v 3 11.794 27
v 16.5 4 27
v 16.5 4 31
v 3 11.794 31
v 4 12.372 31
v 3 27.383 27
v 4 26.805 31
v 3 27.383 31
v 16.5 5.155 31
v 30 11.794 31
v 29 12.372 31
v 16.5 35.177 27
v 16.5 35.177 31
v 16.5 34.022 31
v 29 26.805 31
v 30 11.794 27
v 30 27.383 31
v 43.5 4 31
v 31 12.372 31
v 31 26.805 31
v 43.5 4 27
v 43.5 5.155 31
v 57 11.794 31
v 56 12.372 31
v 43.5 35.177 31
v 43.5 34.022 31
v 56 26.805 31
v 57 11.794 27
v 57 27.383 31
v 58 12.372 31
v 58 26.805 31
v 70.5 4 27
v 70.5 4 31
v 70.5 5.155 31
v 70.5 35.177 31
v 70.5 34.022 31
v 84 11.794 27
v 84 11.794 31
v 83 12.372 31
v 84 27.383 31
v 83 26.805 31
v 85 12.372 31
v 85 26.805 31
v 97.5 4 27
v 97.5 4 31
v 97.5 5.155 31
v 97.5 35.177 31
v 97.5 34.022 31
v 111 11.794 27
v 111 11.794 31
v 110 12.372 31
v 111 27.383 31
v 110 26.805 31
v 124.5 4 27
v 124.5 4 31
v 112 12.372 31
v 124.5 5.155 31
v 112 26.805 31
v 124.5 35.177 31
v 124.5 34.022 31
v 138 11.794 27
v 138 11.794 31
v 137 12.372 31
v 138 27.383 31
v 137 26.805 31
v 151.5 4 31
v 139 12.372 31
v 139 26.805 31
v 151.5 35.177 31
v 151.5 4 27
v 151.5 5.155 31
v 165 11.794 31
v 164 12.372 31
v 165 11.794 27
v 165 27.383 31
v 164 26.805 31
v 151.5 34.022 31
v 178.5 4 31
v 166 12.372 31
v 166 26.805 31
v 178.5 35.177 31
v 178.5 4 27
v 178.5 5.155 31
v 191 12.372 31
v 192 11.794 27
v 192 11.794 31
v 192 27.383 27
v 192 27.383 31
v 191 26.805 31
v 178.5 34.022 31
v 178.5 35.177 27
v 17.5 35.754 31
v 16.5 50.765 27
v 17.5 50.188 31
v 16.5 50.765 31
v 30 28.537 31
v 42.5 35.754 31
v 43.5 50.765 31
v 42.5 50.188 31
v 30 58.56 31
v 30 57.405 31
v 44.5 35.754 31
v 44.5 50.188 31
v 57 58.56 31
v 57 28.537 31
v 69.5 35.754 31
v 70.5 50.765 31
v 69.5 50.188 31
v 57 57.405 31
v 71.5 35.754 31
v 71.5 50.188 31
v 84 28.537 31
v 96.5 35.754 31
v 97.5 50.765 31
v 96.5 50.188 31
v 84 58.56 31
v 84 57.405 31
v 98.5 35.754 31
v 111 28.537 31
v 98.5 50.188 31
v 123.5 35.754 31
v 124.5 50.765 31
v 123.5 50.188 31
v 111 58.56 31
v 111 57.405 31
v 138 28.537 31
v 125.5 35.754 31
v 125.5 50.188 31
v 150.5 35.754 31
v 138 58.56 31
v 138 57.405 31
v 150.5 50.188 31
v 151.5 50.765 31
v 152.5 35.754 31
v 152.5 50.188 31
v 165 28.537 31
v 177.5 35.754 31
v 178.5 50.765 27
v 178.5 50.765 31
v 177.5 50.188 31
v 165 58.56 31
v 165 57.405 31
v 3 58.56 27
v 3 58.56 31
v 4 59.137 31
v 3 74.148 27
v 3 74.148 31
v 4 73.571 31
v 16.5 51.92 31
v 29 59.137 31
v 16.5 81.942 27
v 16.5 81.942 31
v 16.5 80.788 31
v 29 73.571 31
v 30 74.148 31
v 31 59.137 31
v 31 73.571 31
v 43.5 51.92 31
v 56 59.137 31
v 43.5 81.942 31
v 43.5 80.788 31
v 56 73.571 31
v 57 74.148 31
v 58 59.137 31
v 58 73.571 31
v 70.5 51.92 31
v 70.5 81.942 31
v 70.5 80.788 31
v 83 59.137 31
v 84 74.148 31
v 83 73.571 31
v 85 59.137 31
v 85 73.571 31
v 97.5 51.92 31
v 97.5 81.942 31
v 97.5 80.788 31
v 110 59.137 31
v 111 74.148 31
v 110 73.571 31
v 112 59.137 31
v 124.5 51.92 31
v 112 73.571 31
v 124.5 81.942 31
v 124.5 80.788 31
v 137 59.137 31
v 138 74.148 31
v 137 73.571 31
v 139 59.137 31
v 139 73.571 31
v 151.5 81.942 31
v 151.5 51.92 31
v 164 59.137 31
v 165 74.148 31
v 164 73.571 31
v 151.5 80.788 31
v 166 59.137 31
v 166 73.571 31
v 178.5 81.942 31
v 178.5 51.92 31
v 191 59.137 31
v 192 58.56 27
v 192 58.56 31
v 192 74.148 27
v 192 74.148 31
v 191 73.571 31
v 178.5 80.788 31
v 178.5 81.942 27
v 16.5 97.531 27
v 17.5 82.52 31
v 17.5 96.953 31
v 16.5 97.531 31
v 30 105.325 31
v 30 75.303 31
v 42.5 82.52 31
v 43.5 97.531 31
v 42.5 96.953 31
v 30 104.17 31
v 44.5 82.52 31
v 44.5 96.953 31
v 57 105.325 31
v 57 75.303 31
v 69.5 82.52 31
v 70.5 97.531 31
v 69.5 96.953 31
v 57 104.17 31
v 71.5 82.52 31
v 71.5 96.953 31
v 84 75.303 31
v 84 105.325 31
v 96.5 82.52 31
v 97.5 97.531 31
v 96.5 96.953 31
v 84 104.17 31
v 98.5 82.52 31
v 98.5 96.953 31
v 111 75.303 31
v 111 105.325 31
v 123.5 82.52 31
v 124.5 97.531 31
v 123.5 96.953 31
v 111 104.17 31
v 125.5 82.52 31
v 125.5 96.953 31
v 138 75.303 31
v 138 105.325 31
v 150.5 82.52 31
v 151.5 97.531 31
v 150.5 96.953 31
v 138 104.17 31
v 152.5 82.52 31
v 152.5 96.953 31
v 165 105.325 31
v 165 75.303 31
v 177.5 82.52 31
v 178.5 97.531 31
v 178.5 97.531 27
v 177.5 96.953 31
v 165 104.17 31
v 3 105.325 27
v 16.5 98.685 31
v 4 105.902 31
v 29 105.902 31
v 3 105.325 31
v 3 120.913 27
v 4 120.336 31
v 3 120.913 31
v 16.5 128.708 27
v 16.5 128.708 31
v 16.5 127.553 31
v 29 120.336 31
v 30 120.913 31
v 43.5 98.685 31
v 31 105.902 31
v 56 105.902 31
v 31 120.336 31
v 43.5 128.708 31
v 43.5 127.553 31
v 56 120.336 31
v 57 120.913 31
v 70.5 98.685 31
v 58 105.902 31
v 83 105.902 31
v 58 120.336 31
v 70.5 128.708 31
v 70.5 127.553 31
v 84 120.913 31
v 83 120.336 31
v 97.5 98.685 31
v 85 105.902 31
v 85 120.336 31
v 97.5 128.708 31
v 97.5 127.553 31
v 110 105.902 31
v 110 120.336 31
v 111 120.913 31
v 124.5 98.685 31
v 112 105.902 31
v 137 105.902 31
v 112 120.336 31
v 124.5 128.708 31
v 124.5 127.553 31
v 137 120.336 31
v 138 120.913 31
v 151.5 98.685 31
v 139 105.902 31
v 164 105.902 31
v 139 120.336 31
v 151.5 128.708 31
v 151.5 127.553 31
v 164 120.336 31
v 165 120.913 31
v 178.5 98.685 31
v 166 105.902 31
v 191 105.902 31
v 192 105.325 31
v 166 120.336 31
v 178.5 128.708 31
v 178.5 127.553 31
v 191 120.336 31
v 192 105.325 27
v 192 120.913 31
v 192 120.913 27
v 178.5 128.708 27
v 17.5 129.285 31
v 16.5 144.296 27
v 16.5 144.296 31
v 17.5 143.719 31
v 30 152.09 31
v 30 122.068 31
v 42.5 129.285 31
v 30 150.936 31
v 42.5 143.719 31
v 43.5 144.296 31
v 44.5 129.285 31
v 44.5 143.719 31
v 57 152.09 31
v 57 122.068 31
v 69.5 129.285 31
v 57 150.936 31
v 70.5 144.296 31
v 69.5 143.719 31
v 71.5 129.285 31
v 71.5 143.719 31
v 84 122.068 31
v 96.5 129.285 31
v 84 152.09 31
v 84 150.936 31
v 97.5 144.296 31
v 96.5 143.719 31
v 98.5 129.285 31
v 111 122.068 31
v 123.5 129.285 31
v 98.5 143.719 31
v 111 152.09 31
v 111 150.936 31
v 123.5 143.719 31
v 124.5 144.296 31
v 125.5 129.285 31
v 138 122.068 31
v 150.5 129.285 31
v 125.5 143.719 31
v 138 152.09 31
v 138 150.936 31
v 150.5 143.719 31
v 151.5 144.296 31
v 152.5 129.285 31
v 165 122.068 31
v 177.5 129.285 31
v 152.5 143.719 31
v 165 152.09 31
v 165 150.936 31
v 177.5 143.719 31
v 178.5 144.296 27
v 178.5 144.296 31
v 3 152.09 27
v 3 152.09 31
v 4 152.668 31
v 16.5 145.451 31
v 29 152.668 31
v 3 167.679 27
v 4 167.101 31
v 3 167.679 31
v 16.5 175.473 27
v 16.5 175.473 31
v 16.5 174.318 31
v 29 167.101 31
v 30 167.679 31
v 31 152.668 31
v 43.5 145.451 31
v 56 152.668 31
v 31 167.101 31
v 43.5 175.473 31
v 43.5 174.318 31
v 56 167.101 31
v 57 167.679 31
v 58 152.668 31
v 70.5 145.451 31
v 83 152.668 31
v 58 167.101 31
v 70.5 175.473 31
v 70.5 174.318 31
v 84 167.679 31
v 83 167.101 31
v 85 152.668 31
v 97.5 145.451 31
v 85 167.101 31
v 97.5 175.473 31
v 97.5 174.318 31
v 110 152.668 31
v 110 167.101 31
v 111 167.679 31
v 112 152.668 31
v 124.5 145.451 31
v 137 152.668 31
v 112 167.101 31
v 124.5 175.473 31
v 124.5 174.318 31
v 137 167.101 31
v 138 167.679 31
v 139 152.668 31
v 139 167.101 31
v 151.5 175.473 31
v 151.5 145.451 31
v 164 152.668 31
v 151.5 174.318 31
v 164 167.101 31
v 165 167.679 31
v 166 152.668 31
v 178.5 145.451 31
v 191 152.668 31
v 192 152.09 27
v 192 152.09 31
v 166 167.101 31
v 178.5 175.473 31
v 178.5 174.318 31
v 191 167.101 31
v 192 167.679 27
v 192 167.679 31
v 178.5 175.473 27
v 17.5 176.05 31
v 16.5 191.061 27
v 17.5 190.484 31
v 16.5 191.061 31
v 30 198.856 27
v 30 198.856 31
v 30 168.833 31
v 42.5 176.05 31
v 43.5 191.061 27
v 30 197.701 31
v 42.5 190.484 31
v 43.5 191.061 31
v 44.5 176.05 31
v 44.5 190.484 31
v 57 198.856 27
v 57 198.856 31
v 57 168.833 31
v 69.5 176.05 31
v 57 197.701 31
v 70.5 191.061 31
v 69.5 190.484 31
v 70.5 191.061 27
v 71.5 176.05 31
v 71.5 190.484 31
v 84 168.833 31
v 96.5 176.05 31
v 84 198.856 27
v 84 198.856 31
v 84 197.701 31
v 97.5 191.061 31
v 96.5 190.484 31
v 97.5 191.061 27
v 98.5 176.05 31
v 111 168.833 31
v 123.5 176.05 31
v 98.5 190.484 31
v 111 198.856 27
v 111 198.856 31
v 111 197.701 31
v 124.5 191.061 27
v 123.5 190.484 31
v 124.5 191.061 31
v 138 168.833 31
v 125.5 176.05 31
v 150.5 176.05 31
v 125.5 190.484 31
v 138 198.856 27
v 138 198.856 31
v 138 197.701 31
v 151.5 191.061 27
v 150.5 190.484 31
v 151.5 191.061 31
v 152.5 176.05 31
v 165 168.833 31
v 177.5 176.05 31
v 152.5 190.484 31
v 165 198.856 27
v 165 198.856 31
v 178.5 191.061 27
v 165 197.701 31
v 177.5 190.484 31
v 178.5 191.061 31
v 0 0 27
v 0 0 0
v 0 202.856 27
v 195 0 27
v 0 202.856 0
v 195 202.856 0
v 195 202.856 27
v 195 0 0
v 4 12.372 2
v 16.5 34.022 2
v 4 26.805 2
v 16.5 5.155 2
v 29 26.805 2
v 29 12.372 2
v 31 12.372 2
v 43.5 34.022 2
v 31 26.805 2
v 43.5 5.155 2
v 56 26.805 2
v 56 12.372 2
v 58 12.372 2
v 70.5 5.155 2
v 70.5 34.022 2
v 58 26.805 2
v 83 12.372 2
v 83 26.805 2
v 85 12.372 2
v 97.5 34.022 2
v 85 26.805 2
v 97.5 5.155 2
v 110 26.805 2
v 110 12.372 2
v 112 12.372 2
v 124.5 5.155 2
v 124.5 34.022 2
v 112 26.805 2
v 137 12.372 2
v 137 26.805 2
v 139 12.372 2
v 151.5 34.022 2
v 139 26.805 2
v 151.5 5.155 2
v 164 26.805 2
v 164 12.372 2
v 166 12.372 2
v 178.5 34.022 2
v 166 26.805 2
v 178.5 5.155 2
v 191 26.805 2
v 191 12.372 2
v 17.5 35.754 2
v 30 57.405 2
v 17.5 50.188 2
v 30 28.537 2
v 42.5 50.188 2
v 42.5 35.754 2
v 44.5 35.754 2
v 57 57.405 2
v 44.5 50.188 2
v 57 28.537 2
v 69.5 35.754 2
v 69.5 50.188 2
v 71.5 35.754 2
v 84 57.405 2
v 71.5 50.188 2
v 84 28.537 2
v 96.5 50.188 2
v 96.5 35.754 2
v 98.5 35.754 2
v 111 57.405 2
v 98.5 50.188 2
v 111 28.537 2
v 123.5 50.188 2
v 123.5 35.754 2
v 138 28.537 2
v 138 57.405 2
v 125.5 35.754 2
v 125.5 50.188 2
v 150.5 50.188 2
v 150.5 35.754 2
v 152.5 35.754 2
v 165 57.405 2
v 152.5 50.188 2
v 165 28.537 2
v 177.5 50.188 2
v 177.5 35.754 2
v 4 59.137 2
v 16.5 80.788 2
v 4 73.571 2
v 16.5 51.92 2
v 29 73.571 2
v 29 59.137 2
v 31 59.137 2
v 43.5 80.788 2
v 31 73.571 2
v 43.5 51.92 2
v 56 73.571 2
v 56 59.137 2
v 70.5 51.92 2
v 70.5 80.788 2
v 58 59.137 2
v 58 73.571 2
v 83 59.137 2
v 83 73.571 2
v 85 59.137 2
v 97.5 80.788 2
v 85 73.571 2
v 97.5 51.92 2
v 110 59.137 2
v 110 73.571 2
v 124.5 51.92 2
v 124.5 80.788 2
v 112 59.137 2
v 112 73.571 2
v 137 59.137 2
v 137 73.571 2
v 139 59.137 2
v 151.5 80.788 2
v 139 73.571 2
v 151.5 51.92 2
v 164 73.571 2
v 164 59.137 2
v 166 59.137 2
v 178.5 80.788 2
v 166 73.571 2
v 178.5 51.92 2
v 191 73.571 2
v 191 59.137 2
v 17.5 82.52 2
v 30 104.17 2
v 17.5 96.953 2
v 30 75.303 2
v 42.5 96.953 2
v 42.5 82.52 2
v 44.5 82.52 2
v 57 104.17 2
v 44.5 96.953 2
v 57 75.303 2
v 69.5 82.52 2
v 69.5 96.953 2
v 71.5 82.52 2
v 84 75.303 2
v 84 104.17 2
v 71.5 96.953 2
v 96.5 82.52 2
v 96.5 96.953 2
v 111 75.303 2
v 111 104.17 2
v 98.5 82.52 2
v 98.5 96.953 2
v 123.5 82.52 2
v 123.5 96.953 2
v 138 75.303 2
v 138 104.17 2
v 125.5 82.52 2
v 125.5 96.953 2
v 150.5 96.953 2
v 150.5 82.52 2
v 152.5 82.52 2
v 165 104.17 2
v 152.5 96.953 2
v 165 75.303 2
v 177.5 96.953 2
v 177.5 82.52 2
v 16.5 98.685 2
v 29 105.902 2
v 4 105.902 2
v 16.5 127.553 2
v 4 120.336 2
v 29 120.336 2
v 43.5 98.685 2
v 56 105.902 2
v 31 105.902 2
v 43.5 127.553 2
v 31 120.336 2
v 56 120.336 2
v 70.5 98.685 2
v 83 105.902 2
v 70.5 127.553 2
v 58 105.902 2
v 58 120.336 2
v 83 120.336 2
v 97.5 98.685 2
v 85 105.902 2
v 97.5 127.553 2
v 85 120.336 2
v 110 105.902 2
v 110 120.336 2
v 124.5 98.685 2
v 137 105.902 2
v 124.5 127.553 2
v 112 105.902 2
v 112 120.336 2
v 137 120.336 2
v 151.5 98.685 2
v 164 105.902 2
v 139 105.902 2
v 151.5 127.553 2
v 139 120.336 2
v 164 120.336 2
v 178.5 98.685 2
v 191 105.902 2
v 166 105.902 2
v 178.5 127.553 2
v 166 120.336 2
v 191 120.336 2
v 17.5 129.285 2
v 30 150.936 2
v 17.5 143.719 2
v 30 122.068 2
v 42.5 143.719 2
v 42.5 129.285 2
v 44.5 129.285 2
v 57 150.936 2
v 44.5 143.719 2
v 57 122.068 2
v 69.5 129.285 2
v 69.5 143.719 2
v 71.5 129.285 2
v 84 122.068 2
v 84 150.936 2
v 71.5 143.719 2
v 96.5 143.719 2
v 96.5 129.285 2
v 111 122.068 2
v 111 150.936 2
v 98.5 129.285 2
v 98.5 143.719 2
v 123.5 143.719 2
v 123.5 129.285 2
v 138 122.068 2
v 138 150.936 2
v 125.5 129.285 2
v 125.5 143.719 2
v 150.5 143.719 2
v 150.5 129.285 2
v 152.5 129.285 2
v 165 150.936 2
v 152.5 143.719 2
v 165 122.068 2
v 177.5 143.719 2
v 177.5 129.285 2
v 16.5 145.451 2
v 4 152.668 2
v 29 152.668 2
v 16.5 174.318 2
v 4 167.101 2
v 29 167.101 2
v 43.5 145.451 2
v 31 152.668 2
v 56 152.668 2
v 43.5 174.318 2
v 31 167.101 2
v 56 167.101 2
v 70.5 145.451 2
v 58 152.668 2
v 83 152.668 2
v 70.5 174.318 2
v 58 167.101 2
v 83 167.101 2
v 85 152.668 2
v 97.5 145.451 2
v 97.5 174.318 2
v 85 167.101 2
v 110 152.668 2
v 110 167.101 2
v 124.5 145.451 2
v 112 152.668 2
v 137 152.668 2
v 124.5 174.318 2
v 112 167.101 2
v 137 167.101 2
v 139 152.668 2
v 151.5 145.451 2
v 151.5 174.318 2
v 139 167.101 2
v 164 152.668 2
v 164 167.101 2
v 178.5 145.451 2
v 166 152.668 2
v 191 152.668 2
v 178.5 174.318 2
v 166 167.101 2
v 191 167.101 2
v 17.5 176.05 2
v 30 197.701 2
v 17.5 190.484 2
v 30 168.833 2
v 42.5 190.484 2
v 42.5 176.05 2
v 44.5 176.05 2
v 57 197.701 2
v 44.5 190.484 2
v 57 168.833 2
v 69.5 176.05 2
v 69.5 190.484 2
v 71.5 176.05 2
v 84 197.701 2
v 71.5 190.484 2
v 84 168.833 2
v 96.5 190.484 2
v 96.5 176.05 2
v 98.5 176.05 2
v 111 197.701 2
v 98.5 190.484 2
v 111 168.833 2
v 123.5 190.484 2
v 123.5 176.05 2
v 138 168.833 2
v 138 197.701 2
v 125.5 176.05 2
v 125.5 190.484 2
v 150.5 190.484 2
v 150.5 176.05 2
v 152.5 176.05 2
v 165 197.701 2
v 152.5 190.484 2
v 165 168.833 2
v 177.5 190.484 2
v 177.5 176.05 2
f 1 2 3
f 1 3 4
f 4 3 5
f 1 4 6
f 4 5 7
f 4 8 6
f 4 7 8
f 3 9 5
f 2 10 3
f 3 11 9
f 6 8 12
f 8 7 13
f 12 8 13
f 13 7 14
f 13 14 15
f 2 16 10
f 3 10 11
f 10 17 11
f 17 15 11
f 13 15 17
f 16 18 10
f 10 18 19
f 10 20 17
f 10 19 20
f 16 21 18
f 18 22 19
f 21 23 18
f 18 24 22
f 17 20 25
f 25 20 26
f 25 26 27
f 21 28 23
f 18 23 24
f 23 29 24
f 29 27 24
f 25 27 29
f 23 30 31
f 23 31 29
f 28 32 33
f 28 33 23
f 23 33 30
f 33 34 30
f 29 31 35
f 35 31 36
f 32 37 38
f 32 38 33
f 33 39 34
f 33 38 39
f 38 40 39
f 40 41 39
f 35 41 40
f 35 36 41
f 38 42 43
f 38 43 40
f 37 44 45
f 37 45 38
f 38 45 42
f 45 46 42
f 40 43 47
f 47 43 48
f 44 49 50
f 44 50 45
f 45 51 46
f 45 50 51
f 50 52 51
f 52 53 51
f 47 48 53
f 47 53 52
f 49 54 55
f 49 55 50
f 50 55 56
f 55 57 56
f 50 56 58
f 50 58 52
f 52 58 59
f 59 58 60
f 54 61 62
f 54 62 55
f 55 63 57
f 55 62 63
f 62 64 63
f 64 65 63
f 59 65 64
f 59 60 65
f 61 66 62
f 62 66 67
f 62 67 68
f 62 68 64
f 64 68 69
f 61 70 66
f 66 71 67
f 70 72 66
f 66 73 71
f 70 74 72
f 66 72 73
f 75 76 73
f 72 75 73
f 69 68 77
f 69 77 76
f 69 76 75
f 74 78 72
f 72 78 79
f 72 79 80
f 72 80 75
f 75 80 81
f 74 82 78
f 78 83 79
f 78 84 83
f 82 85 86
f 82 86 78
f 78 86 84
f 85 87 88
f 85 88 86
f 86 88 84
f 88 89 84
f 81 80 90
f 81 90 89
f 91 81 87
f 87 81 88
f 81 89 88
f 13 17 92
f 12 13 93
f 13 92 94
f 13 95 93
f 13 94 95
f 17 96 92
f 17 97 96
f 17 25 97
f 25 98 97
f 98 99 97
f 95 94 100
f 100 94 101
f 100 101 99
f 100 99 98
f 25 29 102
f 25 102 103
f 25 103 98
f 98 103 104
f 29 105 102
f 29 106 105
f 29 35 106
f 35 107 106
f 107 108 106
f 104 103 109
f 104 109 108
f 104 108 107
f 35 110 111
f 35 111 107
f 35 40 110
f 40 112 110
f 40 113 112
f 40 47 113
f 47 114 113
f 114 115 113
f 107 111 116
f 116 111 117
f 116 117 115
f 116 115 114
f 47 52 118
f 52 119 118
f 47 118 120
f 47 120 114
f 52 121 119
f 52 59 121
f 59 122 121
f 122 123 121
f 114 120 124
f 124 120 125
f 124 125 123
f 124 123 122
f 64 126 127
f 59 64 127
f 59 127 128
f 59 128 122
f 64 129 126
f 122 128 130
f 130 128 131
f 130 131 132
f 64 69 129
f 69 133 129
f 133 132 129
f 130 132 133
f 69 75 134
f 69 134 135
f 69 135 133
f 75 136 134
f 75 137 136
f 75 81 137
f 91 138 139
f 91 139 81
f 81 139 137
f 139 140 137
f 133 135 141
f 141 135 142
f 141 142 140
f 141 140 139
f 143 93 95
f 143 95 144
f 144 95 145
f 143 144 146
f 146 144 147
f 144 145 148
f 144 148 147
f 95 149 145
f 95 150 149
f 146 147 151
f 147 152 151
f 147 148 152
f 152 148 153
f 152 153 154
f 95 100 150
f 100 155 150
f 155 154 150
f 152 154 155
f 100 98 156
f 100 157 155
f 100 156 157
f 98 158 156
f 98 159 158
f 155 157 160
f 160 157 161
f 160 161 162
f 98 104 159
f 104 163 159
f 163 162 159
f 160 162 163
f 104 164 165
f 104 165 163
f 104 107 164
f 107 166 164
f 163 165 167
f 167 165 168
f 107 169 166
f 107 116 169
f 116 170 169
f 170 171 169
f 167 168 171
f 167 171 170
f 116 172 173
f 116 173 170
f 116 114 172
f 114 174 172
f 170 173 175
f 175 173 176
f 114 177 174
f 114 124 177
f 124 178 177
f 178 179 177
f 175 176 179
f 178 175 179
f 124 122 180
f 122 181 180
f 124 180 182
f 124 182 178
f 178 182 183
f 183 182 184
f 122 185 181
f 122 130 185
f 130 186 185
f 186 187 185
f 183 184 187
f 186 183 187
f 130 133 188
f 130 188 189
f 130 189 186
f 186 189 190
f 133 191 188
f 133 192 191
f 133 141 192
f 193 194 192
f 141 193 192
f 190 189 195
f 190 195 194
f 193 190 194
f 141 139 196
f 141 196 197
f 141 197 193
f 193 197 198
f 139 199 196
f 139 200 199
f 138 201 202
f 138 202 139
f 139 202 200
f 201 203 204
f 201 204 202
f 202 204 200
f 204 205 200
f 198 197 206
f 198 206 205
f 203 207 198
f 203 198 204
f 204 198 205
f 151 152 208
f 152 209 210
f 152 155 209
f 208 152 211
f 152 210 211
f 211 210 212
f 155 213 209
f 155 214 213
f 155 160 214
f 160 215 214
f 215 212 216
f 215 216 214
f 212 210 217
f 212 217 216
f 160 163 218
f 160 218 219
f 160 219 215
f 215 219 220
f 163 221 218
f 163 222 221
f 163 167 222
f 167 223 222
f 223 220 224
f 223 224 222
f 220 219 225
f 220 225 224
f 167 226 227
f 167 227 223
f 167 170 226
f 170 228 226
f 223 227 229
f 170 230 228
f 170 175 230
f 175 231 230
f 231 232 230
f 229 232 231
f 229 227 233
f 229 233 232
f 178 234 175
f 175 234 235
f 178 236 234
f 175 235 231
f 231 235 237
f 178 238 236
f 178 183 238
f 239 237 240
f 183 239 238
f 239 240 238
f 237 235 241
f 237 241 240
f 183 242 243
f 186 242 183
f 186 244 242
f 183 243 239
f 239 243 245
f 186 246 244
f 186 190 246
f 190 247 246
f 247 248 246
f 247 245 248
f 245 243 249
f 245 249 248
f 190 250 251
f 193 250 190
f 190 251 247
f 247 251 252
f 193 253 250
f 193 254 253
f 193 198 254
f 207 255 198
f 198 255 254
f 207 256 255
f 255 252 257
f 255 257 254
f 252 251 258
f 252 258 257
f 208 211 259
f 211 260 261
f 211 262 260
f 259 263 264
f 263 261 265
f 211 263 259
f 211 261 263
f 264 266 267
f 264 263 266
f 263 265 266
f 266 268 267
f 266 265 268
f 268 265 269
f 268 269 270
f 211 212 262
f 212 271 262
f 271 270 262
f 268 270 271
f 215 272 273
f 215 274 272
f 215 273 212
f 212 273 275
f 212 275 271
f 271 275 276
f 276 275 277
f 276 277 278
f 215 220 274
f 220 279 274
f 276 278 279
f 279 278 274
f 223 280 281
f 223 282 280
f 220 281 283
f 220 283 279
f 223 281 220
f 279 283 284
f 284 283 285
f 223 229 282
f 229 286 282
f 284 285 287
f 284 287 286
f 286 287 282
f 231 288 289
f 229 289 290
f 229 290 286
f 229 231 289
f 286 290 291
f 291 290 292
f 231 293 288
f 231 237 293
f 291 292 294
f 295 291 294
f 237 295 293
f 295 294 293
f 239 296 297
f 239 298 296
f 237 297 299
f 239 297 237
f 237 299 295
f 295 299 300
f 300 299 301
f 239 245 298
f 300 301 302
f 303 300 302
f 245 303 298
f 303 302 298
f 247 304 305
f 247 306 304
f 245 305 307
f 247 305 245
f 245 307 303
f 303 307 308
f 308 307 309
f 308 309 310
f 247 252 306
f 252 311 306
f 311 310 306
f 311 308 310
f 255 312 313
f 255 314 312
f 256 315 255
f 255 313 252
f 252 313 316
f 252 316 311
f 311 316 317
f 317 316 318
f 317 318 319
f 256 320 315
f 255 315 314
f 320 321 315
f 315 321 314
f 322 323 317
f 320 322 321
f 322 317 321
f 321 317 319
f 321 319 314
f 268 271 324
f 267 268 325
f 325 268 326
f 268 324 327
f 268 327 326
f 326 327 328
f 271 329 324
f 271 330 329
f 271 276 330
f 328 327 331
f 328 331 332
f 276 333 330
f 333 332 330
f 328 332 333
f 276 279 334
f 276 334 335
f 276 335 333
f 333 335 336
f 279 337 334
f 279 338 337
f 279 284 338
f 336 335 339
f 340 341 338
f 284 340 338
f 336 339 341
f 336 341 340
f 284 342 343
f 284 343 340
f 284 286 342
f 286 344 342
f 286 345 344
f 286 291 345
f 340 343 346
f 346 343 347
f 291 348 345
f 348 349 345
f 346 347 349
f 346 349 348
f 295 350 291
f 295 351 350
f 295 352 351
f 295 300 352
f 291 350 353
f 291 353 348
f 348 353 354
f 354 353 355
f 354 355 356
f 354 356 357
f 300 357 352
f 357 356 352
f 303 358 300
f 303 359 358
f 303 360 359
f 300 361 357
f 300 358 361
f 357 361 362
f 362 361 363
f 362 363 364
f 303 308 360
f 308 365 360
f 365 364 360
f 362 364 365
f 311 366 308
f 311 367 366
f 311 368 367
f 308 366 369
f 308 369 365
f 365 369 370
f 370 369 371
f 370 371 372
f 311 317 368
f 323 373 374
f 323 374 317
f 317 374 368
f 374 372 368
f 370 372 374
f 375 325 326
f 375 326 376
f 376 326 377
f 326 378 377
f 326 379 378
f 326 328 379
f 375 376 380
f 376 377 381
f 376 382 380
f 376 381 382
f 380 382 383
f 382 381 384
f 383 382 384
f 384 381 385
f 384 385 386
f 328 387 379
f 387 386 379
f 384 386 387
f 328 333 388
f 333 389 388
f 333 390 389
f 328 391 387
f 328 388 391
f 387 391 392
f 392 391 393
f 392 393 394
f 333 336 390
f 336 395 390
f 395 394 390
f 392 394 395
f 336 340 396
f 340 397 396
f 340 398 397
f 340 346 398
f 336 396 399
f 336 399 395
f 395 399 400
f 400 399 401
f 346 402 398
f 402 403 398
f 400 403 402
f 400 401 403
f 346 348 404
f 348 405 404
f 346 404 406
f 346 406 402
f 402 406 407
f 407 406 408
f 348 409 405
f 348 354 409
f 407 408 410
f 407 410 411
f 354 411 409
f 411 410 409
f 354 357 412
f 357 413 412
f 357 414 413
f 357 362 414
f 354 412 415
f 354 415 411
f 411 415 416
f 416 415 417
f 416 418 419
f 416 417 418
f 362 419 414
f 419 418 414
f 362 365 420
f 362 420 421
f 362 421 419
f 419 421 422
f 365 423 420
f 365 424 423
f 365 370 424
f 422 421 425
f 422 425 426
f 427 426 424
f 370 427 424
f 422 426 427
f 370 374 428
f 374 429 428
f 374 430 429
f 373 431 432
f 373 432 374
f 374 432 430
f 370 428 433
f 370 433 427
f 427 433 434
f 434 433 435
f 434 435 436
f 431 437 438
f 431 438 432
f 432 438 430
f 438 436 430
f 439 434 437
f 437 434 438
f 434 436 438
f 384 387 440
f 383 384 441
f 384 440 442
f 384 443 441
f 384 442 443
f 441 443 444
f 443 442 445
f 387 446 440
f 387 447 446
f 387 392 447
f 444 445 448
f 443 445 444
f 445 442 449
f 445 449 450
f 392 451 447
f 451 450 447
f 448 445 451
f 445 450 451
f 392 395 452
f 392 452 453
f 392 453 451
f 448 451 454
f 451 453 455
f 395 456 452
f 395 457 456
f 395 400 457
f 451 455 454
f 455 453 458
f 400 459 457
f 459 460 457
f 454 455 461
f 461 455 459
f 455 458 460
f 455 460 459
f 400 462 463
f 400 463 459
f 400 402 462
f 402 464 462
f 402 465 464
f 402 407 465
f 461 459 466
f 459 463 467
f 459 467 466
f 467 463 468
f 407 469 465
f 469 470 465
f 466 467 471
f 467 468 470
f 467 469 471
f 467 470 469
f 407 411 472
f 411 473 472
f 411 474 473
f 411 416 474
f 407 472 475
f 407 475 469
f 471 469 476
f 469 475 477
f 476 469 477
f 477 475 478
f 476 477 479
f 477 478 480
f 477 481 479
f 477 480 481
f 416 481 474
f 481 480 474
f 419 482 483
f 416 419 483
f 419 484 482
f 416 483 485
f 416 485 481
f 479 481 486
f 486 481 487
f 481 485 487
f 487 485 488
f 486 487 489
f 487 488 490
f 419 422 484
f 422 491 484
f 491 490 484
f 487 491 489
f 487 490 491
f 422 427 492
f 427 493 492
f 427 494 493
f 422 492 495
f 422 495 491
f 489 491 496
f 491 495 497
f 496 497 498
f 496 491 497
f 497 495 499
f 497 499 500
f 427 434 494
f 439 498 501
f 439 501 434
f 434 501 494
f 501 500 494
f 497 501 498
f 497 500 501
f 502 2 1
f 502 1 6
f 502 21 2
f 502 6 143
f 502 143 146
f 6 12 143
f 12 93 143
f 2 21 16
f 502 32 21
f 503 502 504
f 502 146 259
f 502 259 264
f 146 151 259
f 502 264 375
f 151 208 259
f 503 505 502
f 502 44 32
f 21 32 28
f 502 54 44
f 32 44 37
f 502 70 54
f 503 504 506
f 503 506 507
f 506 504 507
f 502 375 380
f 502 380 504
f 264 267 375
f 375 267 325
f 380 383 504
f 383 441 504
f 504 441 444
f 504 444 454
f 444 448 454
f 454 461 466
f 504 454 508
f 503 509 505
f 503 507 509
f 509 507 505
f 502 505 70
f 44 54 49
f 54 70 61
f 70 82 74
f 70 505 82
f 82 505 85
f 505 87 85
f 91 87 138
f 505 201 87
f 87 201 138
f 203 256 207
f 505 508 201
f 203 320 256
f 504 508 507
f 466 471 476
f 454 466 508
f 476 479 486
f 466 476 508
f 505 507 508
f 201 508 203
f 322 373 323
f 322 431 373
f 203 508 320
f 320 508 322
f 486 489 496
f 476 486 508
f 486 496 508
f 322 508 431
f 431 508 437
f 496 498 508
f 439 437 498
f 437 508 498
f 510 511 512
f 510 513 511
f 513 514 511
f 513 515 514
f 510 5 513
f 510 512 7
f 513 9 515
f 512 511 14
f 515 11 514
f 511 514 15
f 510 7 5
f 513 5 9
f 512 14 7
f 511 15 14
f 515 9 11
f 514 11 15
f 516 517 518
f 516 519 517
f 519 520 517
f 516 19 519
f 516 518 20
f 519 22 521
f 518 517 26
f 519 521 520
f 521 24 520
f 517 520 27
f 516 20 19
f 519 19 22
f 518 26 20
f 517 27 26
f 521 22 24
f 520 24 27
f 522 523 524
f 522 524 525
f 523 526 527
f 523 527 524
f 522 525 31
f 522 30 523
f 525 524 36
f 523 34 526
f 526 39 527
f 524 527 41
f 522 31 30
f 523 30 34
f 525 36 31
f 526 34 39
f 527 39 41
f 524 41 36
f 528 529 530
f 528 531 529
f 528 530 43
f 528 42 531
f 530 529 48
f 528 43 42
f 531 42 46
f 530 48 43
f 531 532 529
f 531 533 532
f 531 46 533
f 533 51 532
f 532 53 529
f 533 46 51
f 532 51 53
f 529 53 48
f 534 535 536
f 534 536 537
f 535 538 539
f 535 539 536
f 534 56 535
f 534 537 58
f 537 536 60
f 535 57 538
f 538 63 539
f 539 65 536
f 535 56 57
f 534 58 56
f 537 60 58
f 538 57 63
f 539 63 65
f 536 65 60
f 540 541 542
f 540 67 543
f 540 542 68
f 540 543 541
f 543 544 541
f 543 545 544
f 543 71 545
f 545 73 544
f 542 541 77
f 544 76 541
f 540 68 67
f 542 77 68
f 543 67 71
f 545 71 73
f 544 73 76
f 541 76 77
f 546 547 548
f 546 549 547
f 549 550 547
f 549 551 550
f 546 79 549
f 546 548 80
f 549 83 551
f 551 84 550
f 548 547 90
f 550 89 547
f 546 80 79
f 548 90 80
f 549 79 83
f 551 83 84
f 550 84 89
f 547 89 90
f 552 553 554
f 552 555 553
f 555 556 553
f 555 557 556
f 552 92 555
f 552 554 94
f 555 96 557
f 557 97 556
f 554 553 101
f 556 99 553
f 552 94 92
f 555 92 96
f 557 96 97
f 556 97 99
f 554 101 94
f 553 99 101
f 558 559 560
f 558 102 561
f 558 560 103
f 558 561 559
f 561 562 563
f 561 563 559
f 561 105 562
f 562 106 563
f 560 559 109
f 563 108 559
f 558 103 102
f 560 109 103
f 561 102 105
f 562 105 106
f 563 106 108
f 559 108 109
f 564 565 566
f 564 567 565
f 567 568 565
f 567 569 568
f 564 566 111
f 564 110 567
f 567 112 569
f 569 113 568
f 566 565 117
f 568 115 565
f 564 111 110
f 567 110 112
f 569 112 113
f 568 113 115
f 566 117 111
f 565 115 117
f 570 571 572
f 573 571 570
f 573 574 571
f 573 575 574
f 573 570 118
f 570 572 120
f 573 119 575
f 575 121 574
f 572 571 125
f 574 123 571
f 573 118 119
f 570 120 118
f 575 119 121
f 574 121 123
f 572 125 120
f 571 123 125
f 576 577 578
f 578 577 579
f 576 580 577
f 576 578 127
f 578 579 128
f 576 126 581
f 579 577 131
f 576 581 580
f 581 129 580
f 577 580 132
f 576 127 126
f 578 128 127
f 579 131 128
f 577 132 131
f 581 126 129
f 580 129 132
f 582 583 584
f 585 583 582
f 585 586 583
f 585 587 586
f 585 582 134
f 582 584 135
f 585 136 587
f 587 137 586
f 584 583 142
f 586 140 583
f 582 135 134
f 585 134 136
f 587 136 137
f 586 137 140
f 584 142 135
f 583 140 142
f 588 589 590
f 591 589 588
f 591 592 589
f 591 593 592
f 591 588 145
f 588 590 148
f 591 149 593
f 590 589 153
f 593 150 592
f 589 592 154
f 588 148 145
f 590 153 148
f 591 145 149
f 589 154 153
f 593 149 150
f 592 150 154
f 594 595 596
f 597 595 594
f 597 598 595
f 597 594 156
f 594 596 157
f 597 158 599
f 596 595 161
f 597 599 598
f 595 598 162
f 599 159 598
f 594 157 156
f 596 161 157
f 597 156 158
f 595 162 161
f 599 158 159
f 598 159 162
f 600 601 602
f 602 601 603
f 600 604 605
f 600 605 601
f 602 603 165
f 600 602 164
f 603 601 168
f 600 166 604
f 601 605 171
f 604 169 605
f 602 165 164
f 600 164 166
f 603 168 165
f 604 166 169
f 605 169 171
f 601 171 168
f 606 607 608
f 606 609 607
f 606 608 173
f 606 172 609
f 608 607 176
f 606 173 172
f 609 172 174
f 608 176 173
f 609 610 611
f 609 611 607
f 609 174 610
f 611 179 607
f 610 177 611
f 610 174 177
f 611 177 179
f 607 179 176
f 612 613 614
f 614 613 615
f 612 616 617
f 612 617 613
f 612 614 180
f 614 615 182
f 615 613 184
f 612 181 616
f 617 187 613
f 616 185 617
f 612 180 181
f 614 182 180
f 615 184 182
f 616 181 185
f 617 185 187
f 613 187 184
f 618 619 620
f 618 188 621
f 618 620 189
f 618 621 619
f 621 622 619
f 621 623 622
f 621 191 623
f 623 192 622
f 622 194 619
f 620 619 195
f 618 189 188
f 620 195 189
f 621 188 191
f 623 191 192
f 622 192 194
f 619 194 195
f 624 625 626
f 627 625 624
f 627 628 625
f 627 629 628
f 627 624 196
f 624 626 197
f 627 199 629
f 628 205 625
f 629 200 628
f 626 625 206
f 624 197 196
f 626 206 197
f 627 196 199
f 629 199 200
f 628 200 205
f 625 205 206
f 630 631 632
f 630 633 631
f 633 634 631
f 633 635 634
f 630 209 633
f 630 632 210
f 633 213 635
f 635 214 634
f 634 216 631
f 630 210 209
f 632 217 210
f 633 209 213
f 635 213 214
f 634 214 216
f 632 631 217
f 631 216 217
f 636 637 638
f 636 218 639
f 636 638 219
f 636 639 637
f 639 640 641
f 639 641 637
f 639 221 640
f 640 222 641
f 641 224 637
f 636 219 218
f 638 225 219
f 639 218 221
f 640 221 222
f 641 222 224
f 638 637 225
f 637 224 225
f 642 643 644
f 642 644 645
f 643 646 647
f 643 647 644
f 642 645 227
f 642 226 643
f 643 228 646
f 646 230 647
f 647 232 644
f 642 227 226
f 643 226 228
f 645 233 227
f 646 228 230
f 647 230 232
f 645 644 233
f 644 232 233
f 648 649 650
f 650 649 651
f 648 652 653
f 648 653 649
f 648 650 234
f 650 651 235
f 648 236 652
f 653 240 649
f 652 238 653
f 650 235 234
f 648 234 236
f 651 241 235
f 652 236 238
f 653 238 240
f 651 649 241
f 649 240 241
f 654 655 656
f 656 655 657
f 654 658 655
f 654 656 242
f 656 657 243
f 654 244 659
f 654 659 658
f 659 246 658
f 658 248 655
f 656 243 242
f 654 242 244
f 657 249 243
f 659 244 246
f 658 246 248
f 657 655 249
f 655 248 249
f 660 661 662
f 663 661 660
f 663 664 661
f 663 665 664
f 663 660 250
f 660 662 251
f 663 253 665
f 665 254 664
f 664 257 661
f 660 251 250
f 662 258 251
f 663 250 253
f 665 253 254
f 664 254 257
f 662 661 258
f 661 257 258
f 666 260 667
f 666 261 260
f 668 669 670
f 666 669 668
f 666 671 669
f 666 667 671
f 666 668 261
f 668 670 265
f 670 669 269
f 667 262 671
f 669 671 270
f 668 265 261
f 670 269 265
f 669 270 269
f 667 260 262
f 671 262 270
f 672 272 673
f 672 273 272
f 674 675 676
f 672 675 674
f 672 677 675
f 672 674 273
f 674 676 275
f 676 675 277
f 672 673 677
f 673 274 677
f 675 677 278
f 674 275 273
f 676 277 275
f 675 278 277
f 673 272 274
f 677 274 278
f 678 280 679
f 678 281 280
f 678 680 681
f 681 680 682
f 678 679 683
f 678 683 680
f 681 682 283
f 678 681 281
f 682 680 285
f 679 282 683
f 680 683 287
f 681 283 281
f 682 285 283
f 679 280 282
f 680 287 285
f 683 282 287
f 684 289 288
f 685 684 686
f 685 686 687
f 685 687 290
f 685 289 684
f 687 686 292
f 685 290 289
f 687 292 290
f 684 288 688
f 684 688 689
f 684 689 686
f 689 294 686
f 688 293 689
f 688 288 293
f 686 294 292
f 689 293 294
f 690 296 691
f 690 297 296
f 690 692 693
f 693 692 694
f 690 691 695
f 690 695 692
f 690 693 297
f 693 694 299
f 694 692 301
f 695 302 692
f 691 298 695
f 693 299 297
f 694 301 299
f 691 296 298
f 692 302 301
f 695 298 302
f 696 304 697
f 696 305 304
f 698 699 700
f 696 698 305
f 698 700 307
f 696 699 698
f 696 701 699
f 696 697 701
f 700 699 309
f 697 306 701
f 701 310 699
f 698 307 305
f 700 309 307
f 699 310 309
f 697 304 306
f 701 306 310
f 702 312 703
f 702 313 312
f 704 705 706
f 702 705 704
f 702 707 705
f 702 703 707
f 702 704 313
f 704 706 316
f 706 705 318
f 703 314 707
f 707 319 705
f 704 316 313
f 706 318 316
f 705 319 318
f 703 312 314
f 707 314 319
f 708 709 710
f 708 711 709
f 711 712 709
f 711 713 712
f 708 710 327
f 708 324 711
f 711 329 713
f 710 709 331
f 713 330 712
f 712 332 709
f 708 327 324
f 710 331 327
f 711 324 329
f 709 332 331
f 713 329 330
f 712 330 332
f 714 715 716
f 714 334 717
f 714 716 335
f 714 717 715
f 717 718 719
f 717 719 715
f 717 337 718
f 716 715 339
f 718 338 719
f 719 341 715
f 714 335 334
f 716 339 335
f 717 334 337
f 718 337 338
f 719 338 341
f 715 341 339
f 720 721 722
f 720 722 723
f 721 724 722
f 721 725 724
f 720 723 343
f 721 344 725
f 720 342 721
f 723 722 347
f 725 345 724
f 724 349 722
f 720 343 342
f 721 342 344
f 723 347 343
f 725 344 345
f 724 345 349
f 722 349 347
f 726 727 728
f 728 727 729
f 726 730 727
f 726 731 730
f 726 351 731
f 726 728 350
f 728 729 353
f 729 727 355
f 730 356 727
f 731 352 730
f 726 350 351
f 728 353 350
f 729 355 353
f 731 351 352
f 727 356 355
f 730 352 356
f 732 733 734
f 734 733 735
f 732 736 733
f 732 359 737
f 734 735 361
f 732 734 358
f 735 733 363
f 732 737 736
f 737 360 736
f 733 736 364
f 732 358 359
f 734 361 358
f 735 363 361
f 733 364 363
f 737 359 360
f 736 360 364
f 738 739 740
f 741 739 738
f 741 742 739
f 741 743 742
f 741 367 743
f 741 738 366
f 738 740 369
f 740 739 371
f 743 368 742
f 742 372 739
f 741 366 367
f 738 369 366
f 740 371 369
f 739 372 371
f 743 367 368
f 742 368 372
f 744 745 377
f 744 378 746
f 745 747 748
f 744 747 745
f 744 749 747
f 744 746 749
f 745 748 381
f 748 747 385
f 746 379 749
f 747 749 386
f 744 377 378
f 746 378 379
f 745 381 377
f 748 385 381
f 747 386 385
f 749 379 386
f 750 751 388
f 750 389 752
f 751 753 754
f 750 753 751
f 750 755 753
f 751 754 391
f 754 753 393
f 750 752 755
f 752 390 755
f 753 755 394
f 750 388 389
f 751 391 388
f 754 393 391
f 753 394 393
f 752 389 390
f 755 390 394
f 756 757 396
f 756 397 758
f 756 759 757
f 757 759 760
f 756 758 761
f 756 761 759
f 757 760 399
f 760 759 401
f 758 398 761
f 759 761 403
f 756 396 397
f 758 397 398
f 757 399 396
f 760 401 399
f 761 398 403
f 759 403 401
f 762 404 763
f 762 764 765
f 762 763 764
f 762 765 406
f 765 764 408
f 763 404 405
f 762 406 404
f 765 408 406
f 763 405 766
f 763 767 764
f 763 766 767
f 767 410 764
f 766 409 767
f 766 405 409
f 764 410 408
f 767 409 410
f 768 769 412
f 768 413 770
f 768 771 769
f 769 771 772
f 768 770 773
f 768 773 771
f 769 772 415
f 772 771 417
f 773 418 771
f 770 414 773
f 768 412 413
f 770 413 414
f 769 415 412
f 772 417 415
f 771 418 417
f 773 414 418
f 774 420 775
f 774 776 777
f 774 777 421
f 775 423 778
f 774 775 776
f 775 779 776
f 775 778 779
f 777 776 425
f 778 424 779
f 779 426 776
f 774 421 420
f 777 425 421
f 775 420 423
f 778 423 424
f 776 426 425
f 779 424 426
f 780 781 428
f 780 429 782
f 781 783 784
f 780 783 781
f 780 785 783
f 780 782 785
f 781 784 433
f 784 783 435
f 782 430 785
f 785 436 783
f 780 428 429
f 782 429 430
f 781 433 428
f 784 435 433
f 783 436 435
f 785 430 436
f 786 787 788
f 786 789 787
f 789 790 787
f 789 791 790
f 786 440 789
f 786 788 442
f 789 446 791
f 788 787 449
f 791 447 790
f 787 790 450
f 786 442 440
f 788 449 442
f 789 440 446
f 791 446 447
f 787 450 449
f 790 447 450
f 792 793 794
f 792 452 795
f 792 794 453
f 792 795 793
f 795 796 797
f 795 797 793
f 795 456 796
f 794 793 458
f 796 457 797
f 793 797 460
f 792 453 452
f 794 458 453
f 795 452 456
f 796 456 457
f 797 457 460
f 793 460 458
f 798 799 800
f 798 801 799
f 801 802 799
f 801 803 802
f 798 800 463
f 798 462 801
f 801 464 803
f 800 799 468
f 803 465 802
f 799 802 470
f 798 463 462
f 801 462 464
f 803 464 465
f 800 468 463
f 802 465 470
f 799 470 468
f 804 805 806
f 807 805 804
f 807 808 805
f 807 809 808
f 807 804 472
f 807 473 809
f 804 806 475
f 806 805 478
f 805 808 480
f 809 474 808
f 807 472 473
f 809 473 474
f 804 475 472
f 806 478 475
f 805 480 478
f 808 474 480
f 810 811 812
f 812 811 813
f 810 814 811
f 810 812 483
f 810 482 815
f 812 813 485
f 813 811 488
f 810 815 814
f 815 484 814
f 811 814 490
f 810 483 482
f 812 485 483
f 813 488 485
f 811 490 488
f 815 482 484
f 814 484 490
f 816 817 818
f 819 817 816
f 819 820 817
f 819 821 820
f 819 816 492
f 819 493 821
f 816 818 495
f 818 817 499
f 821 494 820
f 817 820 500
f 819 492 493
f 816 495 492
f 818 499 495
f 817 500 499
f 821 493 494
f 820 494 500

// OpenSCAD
// --- PARAMETERS ---
// Hexagon Slot Dimensions
slot_size = 25.0;       // Flat-to-flat inner width of a hex
slot_height = 25.0;     // Height of the main rectangular base
wall_protrusion = 4.0;  // How high the hex walls stick up above the base

// Layout Configuration
cols = 7;               // Number of columns
rows = 8;               // Number of staggered rows
wall_thickness = 2.0;   // Thickness of the honeycomb walls
base_thickness = 2.0;   // Solid floor thickness at the bottom

// Framing Parameter
edge_margin = 2.0;      // Flat perimeter space around the honeycomb grid

// --- CALCULATIONS ---
// Math for vertical-flat hexagons (points top/bottom)
R_in = slot_size / 2 / cos(30);                 // Inner radius for the cutout
x_stride = slot_size + wall_thickness;          // Horizontal distance between columns
R_out = (slot_size + wall_thickness)/2/cos(30); // Outer radius for the raised walls
y_stride = 1.5 * R_out;                         // Vertical distance between staggered rows

// Calculate the footprint of just the hex grid
hex_grid_width = wall_thickness + (cols * x_stride);
hex_grid_depth = wall_thickness + R_out + ((rows - 1) * y_stride) + R_out + wall_thickness;

// Add the 4mm margin to all four sides
total_width = hex_grid_width + (2 * edge_margin);
total_depth = hex_grid_depth + (2 * edge_margin);
total_height = slot_height + base_thickness;
raised_height = total_height + wall_protrusion; 

// Display final footprint size in the console
echo(str("Total Width (X): ", total_width, " mm"));
echo(str("Total Depth (Y): ", total_depth, " mm"));
echo(str("Max Height (Z): ", raised_height, " mm"));

// --- MODEL GENERATION ---
module raised_honeycomb_organizer() {
    difference() {
        
        // 1. POSITIVE GEOMETRY (Base + Raised Walls)
        union() {
            // The main flat rectangular base (now includes the 4mm frame)
            cube([total_width, total_depth, total_height]);
            
            // The raised outer walls of the hexagons
            for (r = [0 : rows - 1]) {
                current_cols = (r % 2 == 0) ? cols : cols - 1;
                
                for (c = [0 : current_cols - 1]) {
                    // X position shifted by the left edge margin
                    x_offset = (r % 2 == 0) ? 0 : (x_stride / 2);
                    x_pos = edge_margin + wall_thickness + (slot_size / 2) + (c * x_stride) + x_offset;
                    
                    // Y position shifted by the front edge margin
                    y_pos = edge_margin + wall_thickness + R_out + (r * y_stride);
                    
                    translate([x_pos, y_pos, 0])
                    rotate([0, 0, 30])
                        cylinder(r = R_out, h = raised_height, $fn = 6);
                }
            }
        }
        
        // 2. NEGATIVE GEOMETRY (Punching the holes)
        for (r = [0 : rows - 1]) {
            current_cols = (r % 2 == 0) ? cols : cols - 1;
            
            for (c = [0 : current_cols - 1]) {
                x_offset = (r % 2 == 0) ? 0 : (x_stride / 2);
                x_pos = edge_margin + wall_thickness + (slot_size / 2) + (c * x_stride) + x_offset;
                y_pos = edge_margin + wall_thickness + R_out + (r * y_stride);
                
                // Subtract the inner hexagon starting from the base floor
                translate([x_pos, y_pos, base_thickness])
                rotate([0, 0, 30])
                    cylinder(r = R_in, h = raised_height + 1, $fn = 6);
            }
        }
    }
}

// Render the final model
raised_honeycomb_organizer();
